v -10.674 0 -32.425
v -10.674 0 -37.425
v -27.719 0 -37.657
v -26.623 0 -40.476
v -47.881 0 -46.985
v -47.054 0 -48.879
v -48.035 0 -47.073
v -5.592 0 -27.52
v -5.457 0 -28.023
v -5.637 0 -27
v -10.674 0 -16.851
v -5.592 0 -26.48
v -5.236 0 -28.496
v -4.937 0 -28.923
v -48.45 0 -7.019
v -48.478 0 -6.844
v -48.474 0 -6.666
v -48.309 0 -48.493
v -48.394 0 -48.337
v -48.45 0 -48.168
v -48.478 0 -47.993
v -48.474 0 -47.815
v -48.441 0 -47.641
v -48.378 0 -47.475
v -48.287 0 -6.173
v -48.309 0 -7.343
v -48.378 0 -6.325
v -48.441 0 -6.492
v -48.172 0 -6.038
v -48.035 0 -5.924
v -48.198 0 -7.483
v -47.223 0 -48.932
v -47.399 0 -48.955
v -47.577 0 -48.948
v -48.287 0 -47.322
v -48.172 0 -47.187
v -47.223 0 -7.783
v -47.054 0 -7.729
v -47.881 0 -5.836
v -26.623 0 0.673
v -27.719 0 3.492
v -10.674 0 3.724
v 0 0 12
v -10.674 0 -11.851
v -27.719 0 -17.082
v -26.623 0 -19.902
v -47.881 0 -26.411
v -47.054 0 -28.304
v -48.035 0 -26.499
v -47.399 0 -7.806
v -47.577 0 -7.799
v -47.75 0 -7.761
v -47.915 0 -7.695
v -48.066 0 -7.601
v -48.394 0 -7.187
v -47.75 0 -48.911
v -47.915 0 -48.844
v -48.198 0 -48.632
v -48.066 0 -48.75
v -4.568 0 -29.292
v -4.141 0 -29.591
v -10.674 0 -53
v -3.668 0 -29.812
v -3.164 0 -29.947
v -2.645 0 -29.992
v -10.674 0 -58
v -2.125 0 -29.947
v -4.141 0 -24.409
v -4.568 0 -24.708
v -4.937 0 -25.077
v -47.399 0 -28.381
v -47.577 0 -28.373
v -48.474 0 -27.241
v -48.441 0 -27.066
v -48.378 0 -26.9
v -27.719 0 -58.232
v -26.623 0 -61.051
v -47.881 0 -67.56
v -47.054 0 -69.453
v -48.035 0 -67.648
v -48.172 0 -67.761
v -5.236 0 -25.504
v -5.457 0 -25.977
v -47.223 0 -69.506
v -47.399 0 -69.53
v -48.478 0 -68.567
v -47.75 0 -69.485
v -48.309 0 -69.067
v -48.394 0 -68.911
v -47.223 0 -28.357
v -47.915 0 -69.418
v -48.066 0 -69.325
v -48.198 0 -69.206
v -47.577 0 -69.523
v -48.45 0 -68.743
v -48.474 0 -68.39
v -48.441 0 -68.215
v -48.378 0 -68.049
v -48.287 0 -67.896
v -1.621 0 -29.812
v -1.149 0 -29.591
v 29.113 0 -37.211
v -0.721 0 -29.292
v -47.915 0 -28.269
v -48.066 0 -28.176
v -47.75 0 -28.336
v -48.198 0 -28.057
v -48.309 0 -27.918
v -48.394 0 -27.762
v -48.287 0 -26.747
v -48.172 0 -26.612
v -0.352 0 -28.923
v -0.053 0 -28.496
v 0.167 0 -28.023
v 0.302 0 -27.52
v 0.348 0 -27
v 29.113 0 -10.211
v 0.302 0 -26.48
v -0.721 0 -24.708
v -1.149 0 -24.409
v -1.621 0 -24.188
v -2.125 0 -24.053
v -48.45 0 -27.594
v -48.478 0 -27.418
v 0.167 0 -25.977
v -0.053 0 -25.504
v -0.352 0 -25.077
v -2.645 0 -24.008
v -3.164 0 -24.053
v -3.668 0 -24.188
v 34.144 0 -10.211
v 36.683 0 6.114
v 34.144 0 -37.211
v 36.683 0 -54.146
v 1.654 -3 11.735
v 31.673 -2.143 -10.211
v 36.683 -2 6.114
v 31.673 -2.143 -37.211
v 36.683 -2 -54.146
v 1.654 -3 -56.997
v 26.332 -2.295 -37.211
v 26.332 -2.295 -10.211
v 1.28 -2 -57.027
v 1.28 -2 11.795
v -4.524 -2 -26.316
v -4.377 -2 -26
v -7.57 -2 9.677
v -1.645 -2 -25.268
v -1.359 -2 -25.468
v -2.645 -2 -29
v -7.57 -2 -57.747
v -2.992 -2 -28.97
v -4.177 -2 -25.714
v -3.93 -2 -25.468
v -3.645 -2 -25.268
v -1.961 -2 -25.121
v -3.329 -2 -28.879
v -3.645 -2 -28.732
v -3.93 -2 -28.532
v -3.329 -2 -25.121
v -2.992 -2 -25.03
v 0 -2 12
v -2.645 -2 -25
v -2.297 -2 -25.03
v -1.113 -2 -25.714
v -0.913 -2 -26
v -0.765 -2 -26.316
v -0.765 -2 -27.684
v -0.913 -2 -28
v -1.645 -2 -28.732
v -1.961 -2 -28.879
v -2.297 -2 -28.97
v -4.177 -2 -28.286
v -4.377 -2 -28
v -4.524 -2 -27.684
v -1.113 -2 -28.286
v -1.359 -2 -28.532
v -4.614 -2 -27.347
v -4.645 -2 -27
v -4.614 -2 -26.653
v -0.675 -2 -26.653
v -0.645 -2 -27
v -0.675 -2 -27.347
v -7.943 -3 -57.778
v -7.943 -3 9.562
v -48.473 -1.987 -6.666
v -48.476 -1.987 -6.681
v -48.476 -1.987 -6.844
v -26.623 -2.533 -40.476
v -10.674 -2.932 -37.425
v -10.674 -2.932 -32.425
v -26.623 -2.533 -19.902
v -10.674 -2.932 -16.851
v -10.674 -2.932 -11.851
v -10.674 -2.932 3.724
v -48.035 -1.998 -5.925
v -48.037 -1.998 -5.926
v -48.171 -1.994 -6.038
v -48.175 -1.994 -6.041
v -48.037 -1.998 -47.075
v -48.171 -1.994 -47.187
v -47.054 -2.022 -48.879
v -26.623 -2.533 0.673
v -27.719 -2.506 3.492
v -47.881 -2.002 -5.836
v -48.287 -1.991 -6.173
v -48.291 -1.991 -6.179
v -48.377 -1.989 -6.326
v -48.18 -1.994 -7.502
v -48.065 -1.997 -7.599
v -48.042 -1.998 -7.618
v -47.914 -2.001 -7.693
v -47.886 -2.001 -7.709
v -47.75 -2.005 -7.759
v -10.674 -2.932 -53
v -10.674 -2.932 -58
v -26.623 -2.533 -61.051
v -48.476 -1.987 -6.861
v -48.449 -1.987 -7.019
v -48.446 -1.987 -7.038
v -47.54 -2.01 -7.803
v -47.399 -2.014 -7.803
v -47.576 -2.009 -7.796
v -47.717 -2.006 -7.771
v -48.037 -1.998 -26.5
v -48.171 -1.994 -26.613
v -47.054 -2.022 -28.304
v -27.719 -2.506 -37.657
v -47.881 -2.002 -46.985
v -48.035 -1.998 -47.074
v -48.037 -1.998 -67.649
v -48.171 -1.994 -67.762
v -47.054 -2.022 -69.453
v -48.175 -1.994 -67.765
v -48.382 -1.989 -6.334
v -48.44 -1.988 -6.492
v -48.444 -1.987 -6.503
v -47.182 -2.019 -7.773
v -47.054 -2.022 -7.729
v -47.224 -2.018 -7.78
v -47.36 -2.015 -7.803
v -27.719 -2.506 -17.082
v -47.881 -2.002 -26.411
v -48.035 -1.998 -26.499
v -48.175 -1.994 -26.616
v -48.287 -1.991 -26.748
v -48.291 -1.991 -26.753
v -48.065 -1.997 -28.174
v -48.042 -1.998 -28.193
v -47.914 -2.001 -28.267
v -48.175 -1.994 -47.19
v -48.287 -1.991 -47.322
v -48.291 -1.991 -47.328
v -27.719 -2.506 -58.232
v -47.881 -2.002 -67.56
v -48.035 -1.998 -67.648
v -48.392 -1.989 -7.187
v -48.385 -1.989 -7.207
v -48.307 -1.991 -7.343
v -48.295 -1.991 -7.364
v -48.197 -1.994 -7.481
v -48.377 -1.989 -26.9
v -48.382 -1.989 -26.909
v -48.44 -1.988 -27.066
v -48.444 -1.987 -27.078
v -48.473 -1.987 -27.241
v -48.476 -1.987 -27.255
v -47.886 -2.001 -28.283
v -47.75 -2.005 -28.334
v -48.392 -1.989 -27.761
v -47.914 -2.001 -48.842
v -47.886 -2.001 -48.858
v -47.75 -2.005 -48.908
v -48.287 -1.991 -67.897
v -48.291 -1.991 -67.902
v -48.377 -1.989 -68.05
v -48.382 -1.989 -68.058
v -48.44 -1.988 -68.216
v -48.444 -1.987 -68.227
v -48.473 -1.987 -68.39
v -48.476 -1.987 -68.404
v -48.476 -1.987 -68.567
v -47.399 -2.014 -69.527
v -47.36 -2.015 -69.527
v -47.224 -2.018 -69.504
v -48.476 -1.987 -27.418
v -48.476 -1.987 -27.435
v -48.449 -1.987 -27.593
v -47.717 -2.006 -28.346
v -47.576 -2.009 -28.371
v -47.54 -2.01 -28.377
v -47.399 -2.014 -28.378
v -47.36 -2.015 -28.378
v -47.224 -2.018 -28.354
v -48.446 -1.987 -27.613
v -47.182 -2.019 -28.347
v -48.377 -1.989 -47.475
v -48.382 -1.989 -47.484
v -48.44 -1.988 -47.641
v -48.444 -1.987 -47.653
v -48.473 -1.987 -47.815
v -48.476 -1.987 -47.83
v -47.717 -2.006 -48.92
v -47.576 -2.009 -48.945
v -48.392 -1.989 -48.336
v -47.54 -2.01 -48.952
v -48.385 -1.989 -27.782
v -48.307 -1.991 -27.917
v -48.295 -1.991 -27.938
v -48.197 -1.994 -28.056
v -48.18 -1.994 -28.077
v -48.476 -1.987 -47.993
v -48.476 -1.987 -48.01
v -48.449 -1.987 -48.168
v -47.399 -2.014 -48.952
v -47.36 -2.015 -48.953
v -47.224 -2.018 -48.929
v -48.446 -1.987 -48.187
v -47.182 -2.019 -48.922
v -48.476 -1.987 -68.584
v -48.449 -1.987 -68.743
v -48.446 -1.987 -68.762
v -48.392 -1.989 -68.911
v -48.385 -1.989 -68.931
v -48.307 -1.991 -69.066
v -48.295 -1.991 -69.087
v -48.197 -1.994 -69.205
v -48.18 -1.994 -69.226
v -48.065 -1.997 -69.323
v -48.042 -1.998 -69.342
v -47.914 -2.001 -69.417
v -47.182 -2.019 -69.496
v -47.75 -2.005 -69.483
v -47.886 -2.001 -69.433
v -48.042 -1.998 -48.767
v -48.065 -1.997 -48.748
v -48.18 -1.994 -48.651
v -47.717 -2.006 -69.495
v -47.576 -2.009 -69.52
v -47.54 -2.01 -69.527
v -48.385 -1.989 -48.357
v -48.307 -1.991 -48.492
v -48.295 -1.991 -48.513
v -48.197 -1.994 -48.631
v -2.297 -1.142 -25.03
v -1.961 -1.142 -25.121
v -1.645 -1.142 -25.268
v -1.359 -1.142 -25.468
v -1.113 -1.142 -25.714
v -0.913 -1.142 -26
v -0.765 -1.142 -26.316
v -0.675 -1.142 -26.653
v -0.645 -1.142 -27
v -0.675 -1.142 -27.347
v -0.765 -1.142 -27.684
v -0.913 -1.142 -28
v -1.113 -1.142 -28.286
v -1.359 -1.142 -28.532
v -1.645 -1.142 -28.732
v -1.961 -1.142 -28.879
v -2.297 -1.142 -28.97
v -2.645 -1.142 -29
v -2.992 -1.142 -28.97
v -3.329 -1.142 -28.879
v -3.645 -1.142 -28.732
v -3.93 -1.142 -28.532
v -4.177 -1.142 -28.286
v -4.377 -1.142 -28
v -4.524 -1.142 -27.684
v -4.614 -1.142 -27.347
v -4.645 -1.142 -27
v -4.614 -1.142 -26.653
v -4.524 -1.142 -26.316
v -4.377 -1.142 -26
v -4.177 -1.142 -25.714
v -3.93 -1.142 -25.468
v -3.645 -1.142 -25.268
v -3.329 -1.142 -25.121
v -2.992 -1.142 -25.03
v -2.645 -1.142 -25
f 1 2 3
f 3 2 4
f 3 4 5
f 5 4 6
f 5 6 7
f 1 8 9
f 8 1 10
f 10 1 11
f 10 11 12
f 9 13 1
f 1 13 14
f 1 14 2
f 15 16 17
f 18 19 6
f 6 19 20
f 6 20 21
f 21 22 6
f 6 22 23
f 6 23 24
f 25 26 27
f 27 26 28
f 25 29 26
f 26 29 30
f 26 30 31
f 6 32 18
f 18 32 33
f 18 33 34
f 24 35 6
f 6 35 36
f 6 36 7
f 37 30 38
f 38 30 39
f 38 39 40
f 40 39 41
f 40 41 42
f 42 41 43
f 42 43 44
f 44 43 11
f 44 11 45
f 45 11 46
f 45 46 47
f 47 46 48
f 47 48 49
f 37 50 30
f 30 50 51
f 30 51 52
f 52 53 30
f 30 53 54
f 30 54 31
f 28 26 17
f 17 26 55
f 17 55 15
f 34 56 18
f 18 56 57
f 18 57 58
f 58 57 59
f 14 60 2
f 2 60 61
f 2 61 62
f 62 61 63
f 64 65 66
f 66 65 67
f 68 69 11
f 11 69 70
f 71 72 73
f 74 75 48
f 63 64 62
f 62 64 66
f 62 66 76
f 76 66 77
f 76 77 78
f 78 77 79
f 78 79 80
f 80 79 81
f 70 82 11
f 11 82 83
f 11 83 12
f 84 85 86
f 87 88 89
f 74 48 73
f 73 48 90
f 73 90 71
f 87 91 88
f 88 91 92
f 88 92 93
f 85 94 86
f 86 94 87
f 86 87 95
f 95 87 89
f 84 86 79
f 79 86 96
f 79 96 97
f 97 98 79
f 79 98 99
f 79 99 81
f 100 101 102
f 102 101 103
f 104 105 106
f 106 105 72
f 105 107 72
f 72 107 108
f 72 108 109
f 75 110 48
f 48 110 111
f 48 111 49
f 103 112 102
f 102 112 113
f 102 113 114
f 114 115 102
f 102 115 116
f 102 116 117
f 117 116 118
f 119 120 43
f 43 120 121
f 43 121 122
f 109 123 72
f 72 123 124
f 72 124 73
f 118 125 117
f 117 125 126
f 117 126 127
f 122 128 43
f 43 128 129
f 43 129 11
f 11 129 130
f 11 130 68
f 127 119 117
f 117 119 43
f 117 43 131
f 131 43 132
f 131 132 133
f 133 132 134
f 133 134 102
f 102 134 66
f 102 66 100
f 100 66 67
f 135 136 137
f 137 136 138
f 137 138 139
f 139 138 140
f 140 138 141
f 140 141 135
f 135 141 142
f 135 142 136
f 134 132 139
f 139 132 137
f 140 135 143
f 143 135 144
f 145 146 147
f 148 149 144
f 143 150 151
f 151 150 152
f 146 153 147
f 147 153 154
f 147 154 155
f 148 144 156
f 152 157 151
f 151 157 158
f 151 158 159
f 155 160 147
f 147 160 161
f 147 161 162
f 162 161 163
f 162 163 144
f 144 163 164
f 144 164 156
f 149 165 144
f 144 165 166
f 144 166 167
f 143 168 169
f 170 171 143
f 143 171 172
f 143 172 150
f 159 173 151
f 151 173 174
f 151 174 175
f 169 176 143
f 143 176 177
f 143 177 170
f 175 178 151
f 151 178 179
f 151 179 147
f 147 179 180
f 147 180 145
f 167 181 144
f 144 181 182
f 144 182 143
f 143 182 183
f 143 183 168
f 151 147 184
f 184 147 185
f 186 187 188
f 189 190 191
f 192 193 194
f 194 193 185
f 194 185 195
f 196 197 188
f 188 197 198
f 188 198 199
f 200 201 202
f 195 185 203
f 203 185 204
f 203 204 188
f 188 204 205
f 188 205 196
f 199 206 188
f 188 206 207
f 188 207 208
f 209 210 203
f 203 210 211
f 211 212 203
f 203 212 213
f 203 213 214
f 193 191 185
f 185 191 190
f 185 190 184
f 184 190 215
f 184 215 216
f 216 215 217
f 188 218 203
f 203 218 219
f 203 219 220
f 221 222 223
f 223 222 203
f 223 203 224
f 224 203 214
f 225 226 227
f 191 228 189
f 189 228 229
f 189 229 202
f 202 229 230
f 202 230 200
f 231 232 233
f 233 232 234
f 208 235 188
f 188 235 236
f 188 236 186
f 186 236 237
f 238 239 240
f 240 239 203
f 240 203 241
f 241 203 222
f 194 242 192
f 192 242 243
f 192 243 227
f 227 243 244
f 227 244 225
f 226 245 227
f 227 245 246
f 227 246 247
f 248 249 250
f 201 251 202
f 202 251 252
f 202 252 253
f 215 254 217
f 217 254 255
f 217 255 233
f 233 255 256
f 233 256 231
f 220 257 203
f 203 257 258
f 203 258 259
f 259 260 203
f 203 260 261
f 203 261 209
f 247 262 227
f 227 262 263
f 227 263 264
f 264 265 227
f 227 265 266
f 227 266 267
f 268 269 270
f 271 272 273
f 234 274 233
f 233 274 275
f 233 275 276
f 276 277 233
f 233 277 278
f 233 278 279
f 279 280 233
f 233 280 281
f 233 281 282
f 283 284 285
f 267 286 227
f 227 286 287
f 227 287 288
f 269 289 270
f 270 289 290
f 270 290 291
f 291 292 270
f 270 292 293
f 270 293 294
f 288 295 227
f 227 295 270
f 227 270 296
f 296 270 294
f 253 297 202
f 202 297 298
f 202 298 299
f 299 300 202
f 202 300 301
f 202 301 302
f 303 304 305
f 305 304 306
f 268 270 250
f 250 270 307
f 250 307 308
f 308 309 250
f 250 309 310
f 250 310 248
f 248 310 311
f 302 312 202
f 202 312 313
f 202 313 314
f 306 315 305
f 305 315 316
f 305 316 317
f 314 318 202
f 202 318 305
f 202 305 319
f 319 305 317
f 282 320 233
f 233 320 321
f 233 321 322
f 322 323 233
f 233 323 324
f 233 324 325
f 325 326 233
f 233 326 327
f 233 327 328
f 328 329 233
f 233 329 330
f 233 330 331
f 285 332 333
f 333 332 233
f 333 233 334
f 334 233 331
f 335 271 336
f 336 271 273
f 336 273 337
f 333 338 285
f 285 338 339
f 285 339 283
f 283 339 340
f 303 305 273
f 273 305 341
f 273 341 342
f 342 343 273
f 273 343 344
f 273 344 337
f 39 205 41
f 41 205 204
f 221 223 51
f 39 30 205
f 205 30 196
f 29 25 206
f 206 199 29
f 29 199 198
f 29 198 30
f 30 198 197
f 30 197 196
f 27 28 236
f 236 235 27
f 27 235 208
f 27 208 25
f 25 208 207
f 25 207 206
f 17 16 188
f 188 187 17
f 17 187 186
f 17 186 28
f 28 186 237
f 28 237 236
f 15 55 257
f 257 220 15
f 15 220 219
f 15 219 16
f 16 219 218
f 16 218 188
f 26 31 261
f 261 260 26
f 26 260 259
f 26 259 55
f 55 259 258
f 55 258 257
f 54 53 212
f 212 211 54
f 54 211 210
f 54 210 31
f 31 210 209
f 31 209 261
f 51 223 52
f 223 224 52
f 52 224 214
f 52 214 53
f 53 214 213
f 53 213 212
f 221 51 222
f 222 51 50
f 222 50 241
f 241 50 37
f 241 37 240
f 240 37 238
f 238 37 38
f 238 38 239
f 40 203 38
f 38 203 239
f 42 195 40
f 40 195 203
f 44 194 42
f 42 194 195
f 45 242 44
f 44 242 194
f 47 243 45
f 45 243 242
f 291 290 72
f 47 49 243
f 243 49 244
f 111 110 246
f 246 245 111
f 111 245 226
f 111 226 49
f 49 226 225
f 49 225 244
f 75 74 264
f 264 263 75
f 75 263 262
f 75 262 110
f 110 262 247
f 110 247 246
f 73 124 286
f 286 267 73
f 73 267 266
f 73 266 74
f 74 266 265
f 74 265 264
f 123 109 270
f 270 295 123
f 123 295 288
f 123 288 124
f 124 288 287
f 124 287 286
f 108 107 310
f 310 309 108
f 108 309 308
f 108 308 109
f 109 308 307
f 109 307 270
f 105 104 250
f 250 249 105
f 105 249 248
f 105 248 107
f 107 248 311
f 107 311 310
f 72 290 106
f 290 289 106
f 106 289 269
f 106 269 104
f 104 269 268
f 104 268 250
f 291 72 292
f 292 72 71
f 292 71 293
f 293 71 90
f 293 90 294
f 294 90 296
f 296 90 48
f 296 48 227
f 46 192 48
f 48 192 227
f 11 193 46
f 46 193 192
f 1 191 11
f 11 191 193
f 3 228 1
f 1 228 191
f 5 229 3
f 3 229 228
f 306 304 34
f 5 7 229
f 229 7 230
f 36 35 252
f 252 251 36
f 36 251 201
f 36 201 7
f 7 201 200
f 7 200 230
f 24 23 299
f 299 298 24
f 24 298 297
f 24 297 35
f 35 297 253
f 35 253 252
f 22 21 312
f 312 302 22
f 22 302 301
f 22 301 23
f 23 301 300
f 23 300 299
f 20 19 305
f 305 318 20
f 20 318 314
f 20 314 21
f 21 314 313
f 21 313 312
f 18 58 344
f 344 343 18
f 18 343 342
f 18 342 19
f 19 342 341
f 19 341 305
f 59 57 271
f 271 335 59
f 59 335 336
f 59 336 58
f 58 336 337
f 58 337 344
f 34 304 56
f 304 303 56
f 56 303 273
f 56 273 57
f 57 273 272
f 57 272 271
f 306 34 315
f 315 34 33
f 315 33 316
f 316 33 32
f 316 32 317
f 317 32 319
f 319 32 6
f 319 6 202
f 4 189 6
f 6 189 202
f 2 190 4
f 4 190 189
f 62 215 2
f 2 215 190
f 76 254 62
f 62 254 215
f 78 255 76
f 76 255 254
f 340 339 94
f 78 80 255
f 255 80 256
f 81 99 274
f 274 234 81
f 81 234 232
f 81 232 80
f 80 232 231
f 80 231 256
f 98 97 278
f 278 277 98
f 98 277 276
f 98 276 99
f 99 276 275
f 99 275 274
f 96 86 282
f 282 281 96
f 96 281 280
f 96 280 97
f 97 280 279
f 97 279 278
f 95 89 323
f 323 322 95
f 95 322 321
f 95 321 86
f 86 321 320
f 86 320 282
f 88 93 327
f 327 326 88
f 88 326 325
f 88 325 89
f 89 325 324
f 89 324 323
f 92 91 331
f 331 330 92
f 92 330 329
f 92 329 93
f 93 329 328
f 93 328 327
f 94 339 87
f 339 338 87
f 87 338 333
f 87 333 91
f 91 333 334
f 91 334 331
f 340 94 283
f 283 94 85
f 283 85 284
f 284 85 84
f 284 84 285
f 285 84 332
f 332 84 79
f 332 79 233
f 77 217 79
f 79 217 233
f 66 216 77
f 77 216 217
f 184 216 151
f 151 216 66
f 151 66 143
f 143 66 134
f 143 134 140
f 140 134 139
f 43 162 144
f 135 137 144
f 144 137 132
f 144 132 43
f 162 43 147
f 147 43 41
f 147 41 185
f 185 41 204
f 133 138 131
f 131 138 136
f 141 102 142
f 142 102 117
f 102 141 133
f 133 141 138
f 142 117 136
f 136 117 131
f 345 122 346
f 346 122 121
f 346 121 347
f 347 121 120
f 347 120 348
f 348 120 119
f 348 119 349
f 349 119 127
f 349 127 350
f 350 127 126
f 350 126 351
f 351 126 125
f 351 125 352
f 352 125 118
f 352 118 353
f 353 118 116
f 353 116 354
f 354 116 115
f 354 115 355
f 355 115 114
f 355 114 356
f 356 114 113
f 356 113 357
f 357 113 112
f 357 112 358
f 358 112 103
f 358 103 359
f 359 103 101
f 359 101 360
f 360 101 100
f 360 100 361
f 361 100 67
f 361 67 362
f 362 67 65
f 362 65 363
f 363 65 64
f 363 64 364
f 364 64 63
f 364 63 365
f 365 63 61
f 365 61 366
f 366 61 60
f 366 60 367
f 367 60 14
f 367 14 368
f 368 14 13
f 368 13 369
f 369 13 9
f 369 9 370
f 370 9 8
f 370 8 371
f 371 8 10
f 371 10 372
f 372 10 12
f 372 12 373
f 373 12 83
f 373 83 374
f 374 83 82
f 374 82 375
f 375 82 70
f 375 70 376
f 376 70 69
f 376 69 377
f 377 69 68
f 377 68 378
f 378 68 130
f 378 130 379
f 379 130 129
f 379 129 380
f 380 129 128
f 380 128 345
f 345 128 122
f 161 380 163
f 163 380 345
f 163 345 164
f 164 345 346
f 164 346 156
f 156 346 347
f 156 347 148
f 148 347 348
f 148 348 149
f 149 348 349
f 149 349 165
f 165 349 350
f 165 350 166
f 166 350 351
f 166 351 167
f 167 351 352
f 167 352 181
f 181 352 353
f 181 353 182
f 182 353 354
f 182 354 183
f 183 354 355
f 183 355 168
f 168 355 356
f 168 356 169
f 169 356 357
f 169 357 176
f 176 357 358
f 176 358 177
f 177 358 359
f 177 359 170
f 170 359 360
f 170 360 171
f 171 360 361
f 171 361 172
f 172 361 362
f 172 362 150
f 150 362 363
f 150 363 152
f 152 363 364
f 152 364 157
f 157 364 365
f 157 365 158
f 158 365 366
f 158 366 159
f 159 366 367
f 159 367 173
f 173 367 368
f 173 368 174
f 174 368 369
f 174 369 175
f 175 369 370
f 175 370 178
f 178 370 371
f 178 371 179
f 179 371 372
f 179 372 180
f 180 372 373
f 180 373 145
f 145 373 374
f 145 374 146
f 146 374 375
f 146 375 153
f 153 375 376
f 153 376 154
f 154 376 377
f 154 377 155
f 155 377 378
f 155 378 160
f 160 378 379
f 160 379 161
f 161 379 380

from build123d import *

# Parameters (mm, degrees)
BOSS_EXTRUDE1_START = 12
BOSS_EXTRUDE1_DEPTH = 81.818884
SKETCH1_OUTSIDE_W   = 111.208
SKETCH1_OUTSIDE_H   = 107.499
CUT_EXTRUDE1_DEPTH  = 86.261649485
CUT_EXTRUDE2_START  = -37.210696
CUT_EXTRUDE2_DEPTH  = 27
SKETCH5_R           = 2
CUT_EXTRUDE4_DEPTH  = 85.8164494


with BuildPart() as part:
    # Sketch2 → Boss-Extrude1 (new body)
    with BuildSketch(Plane.XY.offset(BOSS_EXTRUDE1_START)):
        Polygon((-48.8453919, -1.977444406), (-7.943168155, -3), (-7.569819885, -2), (1.280407352, -2), (1.653755621, -3), (36.682523305, -2), (36.682523305, 0), (-48.8453919, 0), align=None)
    extrude(amount=-BOSS_EXTRUDE1_DEPTH)

    # Sketch1 outside → Cut-Extrude1 (cut, through all)
    with BuildSketch(Plane(origin=(0, 0, 0), x_dir=(1, 0, 0), z_dir=(0, 1, 0))):
        with Locations((-6.081, 28.9095)):
            Rectangle(SKETCH1_OUTSIDE_W, SKETCH1_OUTSIDE_H)
        with BuildLine():
            Line((-27.718637693, -3.492120904), (0, -12))
            Line((0, -12), (36.682523305, -6.114423246))
            Line((36.682523305, -6.114423246), (36.682523305, 54.145919103))
            Line((36.682523305, 54.145919103), (-10.674216271, 58))
            Line((-10.674216271, 58), (-26.6233986, 61.050643653))
            Line((-26.6233986, 61.050643653), (-47.053769098, 69.453098724))
            ThreePointArc((-47.053769098, 69.453098724), (-48.393579381, 68.911077159), (-47.880590401, 67.559884621))
            Line((-47.880590401, 67.559884621), (-27.718637693, 58.23156579))
            Line((-27.718637693, 58.23156579), (-10.674216271, 53))
            Line((-10.674216271, 53), (-10.674216271, 37.425437768))
            Line((-10.674216271, 37.425437768), (-26.6233986, 40.476081421))
            Line((-26.6233986, 40.476081421), (-47.053769098, 48.878536493))
            ThreePointArc((-47.053769098, 48.878536493), (-48.393579381, 48.336514928), (-47.880590401, 46.985322389))
            Line((-47.880590401, 46.985322389), (-27.718637693, 37.657003559))
            Line((-27.718637693, 37.657003559), (-10.674216271, 32.425437768))
            Line((-10.674216271, 32.425437768), (-10.674216271, 16.850875537))
            Line((-10.674216271, 16.850875537), (-26.6233986, 19.90151919))
            Line((-26.6233986, 19.90151919), (-47.053769098, 28.303974261))
            ThreePointArc((-47.053769098, 28.303974261), (-48.393579381, 27.761952696), (-47.880590401, 26.410760157))
            Line((-47.880590401, 26.410760157), (-27.718637693, 17.082441327))
            Line((-27.718637693, 17.082441327), (-10.674216271, 11.850875537))
            Line((-10.674216271, 11.850875537), (-10.674216271, -3.723686695))
            Line((-10.674216271, -3.723686695), (-26.6233986, -0.673043042))
            Line((-26.6233986, -0.673043042), (-47.053769098, 7.729412029))
            ThreePointArc((-47.053769098, 7.729412029), (-48.393579381, 7.187390465), (-47.880590401, 5.836197926))
            Line((-47.880590401, 5.836197926), (-27.718637693, -3.492120904))
        make_face(mode=Mode.SUBTRACT)
    extrude(amount=-CUT_EXTRUDE1_DEPTH, mode=Mode.SUBTRACT)

    # Sketch3 → Cut-Extrude2 (cut)
    with BuildSketch(Plane.XY.offset(CUT_EXTRUDE2_START)):
        Polygon((34.143841834, 0), (29.113394238, 0), (26.332255745, -2.295479066), (31.673105241, -2.143008687), align=None)
    extrude(amount=CUT_EXTRUDE2_DEPTH, mode=Mode.SUBTRACT)

    # Cut-Extrude3 cone 1 section (through the dimple's axis) → Cut-Extrude3 (revolve, cut)
    with BuildSketch(Plane(origin=(-2.644706267, 0, -27), x_dir=(0, 0, 1), z_dir=(1, 0, 0))):
        Polygon((0, 0), (2.9924, 0), (0, 3.442362422), align=None)
    revolve(axis=Axis((-2.644706267, 0, -27), (0, -1, 0)), mode=Mode.SUBTRACT)

    # Sketch5 → Cut-Extrude4 (cut, through all)
    with BuildSketch(Plane(origin=(0, 0, 0), x_dir=(1, 0, 0), z_dir=(0, 1, 0))):
        with Locations(Location((-2.644706267, 27, 0), (0, 0, 270))):
            Circle(SKETCH5_R)
    extrude(amount=-CUT_EXTRUDE4_DEPTH, mode=Mode.SUBTRACT)


solid = part.part
